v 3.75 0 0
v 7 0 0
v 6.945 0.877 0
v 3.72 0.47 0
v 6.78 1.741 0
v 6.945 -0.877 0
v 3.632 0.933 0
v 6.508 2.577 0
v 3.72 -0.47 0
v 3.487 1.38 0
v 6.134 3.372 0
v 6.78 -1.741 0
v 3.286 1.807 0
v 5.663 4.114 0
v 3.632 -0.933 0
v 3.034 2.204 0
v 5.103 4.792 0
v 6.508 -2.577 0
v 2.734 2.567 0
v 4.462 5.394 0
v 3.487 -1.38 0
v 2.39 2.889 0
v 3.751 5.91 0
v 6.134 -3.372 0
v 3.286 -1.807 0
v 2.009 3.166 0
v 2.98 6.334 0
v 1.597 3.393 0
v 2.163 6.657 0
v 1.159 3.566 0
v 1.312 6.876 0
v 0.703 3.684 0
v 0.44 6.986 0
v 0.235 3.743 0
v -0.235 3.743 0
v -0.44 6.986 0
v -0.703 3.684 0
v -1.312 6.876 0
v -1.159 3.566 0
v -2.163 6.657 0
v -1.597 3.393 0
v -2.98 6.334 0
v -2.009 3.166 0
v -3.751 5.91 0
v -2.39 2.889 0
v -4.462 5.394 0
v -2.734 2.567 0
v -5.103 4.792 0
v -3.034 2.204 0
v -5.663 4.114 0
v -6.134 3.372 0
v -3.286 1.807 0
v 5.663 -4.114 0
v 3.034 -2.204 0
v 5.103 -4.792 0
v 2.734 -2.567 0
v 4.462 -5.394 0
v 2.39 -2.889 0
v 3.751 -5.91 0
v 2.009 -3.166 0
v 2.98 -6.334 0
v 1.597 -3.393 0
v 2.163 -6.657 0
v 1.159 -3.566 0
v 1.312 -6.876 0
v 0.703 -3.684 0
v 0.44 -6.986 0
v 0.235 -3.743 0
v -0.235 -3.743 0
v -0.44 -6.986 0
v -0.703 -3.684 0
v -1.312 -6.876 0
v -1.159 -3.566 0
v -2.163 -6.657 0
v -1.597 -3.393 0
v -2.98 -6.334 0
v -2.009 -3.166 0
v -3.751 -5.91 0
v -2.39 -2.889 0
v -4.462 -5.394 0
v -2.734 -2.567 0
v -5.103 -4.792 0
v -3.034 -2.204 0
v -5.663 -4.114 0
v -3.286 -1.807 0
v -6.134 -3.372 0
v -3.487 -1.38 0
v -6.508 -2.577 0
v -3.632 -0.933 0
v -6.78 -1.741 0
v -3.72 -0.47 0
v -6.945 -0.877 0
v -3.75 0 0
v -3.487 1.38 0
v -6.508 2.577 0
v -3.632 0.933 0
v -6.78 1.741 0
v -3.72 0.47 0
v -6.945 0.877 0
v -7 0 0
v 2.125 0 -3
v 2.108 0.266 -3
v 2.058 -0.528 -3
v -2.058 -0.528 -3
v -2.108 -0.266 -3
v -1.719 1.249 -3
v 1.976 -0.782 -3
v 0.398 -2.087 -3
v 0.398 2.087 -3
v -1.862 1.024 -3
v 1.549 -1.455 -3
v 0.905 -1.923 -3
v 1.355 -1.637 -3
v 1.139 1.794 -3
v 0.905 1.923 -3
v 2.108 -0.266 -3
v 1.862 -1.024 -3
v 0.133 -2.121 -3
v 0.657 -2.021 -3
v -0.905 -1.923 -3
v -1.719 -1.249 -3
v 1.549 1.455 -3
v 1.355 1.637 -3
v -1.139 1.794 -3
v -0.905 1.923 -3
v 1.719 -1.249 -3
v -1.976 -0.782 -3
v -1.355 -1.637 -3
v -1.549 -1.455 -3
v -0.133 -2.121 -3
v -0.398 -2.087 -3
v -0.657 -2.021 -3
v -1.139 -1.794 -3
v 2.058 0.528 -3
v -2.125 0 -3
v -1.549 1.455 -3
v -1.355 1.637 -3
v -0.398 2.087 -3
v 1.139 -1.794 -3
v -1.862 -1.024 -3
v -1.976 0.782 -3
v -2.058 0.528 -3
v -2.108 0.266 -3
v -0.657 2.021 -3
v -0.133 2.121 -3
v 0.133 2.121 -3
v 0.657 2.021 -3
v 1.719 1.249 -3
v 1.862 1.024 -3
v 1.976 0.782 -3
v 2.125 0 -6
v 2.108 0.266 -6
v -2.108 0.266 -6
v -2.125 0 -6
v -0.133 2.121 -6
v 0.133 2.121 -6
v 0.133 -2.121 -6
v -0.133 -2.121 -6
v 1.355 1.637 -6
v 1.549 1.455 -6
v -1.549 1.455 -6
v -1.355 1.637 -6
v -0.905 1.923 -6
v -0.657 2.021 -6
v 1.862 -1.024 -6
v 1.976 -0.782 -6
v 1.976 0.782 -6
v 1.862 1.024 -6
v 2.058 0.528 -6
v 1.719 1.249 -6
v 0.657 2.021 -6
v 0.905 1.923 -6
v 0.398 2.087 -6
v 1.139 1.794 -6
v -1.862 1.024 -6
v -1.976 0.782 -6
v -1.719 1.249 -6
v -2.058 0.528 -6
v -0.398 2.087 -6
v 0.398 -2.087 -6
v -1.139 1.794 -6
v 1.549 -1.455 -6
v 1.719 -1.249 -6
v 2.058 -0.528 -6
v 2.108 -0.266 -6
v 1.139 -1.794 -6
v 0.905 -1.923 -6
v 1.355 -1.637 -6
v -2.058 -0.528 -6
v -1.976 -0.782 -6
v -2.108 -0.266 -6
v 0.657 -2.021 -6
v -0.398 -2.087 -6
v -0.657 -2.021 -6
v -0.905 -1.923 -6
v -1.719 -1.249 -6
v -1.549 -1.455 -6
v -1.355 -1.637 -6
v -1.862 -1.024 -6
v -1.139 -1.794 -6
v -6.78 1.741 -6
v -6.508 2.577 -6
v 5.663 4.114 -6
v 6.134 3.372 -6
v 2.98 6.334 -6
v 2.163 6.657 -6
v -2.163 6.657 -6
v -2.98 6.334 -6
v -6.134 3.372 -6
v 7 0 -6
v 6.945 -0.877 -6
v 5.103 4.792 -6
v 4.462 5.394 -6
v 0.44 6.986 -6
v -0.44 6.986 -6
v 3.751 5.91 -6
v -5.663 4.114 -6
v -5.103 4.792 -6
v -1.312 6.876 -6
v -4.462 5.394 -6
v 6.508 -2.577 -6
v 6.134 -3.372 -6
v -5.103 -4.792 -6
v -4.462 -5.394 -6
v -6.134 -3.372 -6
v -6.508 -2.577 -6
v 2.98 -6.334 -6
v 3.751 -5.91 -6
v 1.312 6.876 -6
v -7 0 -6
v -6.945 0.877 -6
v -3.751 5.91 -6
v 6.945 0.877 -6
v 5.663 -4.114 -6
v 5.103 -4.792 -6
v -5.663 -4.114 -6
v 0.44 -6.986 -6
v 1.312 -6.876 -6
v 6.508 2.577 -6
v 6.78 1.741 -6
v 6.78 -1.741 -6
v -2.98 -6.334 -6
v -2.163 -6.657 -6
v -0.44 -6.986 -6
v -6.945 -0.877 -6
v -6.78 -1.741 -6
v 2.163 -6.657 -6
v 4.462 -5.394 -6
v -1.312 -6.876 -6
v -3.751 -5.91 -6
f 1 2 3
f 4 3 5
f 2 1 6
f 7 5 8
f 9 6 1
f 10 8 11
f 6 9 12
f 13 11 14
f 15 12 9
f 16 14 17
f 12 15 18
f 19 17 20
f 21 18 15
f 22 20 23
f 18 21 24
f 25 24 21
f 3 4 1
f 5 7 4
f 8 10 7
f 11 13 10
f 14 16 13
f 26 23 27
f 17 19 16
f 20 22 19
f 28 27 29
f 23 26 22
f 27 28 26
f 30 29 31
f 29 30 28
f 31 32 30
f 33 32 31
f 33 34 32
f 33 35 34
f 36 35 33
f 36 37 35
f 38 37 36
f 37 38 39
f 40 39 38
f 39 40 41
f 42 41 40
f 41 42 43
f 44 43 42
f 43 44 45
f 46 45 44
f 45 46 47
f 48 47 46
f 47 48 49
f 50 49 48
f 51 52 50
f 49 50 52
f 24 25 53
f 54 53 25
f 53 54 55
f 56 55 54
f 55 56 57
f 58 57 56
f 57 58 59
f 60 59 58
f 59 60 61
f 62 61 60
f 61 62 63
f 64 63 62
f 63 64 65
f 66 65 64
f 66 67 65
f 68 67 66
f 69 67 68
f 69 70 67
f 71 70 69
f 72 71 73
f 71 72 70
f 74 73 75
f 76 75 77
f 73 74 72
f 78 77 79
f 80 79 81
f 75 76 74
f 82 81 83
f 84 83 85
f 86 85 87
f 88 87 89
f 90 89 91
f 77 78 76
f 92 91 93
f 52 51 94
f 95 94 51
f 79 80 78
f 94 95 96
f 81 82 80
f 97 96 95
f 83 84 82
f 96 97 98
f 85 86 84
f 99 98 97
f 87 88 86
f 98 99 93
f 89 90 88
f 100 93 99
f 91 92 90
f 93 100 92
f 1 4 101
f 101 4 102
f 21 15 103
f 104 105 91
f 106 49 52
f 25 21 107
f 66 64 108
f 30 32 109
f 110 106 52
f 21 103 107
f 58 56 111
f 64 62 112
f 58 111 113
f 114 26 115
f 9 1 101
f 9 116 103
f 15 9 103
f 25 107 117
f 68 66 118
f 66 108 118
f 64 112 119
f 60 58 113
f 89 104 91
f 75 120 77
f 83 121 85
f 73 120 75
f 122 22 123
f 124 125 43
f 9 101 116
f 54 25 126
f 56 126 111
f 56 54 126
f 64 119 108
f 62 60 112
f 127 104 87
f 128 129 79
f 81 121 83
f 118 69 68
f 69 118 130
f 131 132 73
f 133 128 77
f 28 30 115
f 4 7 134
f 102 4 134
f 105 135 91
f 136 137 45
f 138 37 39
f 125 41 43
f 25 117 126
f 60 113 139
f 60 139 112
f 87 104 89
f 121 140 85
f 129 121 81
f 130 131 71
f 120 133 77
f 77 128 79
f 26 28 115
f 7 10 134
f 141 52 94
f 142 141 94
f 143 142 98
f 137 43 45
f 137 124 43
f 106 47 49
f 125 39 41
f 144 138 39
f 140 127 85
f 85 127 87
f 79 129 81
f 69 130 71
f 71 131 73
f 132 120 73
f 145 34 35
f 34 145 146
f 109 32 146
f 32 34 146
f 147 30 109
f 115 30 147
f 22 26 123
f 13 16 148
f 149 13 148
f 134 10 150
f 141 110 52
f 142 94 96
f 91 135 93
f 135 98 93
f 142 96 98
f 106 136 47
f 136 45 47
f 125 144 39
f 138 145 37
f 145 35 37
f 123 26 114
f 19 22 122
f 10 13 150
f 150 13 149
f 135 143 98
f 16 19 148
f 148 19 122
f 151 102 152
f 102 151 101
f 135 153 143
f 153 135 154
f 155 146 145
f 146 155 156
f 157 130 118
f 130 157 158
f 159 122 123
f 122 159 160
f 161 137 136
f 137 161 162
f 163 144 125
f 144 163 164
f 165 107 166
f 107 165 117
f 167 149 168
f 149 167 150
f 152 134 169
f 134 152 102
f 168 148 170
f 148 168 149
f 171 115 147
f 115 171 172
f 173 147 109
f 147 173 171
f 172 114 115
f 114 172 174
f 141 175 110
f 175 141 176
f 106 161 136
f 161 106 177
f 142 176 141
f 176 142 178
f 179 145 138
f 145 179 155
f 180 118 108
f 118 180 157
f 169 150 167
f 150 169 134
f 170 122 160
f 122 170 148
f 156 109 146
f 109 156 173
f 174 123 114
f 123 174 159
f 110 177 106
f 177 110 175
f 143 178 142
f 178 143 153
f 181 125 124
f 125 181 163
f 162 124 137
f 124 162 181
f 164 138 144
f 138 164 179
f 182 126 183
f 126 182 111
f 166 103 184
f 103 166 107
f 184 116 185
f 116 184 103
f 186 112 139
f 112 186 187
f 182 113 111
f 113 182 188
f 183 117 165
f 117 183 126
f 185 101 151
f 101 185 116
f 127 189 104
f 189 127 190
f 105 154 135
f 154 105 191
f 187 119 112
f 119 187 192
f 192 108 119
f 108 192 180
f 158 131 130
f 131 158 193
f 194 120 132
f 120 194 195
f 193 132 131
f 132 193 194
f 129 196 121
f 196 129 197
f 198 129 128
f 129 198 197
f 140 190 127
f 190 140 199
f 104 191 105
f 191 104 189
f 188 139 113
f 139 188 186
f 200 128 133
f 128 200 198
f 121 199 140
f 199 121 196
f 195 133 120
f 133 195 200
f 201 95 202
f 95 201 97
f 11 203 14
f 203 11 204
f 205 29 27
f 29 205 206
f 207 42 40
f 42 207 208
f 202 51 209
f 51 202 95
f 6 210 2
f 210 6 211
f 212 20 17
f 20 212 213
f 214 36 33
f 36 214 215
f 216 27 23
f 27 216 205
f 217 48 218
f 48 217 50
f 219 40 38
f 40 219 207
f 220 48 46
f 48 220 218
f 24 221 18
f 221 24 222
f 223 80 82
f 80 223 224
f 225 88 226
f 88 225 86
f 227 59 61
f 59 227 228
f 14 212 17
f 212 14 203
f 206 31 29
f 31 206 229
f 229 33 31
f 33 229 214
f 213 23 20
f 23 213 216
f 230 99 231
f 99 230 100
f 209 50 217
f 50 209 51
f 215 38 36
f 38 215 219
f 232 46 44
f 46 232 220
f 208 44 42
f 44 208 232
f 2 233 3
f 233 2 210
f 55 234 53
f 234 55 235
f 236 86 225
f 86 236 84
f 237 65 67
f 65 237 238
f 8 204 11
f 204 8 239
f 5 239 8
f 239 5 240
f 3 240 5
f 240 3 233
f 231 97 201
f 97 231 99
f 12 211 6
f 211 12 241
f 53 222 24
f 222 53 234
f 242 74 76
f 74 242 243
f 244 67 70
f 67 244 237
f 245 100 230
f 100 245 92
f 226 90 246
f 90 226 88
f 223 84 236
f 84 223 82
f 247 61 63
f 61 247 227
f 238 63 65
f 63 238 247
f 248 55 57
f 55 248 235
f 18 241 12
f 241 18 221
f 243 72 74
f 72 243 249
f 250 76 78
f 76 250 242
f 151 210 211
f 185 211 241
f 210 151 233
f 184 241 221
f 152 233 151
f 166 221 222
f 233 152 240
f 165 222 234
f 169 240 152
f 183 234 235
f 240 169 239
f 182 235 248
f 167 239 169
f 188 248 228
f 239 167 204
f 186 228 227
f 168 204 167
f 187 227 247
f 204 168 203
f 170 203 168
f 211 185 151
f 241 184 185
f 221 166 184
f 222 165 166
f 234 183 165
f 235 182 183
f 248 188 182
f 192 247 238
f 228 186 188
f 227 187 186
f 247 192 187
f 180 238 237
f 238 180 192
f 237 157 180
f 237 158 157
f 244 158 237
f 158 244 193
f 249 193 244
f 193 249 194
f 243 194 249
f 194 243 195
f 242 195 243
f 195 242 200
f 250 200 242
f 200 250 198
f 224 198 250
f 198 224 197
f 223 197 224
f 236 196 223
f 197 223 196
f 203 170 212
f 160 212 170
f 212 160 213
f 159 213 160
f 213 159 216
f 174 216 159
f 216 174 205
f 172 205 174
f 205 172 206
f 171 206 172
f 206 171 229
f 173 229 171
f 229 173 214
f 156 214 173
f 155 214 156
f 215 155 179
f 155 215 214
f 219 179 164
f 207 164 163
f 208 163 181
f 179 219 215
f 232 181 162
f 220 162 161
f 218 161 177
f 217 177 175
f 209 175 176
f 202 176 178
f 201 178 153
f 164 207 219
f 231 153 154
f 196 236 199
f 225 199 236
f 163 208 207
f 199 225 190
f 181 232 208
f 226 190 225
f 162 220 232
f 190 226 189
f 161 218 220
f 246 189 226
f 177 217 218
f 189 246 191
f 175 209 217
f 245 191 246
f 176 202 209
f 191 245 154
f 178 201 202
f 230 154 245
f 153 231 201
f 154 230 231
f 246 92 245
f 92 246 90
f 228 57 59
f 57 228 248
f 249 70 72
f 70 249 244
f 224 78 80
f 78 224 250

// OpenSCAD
$fn = 50;

difference() {
	union() {
		translate(v = [0, 0, -6.0]) {
			cylinder(h = 6, r = 7.0);
		}
	}
	union() {
		translate(v = [0, 0, 0]) {
			rotate(a = [0, 0, 0]) {
				difference() {
					union() {
						translate(v = [0, 0, -9.0]) {
							cylinder(h = 9, r = 2.0);
						}
						translate(v = [0, 0, -3]) {
							cylinder(h = 3, r1 = 2.125, r2 = 3.75);
						}
						translate(v = [0, 0, -9.0]) {
							cylinder(h = 9, r = 2.125);
						}
						translate(v = [0, 0, -9.0]) {
							cylinder(h = 9, r = 2.0);
						}
					}
					union();
				}
			}
		}
	}
}
